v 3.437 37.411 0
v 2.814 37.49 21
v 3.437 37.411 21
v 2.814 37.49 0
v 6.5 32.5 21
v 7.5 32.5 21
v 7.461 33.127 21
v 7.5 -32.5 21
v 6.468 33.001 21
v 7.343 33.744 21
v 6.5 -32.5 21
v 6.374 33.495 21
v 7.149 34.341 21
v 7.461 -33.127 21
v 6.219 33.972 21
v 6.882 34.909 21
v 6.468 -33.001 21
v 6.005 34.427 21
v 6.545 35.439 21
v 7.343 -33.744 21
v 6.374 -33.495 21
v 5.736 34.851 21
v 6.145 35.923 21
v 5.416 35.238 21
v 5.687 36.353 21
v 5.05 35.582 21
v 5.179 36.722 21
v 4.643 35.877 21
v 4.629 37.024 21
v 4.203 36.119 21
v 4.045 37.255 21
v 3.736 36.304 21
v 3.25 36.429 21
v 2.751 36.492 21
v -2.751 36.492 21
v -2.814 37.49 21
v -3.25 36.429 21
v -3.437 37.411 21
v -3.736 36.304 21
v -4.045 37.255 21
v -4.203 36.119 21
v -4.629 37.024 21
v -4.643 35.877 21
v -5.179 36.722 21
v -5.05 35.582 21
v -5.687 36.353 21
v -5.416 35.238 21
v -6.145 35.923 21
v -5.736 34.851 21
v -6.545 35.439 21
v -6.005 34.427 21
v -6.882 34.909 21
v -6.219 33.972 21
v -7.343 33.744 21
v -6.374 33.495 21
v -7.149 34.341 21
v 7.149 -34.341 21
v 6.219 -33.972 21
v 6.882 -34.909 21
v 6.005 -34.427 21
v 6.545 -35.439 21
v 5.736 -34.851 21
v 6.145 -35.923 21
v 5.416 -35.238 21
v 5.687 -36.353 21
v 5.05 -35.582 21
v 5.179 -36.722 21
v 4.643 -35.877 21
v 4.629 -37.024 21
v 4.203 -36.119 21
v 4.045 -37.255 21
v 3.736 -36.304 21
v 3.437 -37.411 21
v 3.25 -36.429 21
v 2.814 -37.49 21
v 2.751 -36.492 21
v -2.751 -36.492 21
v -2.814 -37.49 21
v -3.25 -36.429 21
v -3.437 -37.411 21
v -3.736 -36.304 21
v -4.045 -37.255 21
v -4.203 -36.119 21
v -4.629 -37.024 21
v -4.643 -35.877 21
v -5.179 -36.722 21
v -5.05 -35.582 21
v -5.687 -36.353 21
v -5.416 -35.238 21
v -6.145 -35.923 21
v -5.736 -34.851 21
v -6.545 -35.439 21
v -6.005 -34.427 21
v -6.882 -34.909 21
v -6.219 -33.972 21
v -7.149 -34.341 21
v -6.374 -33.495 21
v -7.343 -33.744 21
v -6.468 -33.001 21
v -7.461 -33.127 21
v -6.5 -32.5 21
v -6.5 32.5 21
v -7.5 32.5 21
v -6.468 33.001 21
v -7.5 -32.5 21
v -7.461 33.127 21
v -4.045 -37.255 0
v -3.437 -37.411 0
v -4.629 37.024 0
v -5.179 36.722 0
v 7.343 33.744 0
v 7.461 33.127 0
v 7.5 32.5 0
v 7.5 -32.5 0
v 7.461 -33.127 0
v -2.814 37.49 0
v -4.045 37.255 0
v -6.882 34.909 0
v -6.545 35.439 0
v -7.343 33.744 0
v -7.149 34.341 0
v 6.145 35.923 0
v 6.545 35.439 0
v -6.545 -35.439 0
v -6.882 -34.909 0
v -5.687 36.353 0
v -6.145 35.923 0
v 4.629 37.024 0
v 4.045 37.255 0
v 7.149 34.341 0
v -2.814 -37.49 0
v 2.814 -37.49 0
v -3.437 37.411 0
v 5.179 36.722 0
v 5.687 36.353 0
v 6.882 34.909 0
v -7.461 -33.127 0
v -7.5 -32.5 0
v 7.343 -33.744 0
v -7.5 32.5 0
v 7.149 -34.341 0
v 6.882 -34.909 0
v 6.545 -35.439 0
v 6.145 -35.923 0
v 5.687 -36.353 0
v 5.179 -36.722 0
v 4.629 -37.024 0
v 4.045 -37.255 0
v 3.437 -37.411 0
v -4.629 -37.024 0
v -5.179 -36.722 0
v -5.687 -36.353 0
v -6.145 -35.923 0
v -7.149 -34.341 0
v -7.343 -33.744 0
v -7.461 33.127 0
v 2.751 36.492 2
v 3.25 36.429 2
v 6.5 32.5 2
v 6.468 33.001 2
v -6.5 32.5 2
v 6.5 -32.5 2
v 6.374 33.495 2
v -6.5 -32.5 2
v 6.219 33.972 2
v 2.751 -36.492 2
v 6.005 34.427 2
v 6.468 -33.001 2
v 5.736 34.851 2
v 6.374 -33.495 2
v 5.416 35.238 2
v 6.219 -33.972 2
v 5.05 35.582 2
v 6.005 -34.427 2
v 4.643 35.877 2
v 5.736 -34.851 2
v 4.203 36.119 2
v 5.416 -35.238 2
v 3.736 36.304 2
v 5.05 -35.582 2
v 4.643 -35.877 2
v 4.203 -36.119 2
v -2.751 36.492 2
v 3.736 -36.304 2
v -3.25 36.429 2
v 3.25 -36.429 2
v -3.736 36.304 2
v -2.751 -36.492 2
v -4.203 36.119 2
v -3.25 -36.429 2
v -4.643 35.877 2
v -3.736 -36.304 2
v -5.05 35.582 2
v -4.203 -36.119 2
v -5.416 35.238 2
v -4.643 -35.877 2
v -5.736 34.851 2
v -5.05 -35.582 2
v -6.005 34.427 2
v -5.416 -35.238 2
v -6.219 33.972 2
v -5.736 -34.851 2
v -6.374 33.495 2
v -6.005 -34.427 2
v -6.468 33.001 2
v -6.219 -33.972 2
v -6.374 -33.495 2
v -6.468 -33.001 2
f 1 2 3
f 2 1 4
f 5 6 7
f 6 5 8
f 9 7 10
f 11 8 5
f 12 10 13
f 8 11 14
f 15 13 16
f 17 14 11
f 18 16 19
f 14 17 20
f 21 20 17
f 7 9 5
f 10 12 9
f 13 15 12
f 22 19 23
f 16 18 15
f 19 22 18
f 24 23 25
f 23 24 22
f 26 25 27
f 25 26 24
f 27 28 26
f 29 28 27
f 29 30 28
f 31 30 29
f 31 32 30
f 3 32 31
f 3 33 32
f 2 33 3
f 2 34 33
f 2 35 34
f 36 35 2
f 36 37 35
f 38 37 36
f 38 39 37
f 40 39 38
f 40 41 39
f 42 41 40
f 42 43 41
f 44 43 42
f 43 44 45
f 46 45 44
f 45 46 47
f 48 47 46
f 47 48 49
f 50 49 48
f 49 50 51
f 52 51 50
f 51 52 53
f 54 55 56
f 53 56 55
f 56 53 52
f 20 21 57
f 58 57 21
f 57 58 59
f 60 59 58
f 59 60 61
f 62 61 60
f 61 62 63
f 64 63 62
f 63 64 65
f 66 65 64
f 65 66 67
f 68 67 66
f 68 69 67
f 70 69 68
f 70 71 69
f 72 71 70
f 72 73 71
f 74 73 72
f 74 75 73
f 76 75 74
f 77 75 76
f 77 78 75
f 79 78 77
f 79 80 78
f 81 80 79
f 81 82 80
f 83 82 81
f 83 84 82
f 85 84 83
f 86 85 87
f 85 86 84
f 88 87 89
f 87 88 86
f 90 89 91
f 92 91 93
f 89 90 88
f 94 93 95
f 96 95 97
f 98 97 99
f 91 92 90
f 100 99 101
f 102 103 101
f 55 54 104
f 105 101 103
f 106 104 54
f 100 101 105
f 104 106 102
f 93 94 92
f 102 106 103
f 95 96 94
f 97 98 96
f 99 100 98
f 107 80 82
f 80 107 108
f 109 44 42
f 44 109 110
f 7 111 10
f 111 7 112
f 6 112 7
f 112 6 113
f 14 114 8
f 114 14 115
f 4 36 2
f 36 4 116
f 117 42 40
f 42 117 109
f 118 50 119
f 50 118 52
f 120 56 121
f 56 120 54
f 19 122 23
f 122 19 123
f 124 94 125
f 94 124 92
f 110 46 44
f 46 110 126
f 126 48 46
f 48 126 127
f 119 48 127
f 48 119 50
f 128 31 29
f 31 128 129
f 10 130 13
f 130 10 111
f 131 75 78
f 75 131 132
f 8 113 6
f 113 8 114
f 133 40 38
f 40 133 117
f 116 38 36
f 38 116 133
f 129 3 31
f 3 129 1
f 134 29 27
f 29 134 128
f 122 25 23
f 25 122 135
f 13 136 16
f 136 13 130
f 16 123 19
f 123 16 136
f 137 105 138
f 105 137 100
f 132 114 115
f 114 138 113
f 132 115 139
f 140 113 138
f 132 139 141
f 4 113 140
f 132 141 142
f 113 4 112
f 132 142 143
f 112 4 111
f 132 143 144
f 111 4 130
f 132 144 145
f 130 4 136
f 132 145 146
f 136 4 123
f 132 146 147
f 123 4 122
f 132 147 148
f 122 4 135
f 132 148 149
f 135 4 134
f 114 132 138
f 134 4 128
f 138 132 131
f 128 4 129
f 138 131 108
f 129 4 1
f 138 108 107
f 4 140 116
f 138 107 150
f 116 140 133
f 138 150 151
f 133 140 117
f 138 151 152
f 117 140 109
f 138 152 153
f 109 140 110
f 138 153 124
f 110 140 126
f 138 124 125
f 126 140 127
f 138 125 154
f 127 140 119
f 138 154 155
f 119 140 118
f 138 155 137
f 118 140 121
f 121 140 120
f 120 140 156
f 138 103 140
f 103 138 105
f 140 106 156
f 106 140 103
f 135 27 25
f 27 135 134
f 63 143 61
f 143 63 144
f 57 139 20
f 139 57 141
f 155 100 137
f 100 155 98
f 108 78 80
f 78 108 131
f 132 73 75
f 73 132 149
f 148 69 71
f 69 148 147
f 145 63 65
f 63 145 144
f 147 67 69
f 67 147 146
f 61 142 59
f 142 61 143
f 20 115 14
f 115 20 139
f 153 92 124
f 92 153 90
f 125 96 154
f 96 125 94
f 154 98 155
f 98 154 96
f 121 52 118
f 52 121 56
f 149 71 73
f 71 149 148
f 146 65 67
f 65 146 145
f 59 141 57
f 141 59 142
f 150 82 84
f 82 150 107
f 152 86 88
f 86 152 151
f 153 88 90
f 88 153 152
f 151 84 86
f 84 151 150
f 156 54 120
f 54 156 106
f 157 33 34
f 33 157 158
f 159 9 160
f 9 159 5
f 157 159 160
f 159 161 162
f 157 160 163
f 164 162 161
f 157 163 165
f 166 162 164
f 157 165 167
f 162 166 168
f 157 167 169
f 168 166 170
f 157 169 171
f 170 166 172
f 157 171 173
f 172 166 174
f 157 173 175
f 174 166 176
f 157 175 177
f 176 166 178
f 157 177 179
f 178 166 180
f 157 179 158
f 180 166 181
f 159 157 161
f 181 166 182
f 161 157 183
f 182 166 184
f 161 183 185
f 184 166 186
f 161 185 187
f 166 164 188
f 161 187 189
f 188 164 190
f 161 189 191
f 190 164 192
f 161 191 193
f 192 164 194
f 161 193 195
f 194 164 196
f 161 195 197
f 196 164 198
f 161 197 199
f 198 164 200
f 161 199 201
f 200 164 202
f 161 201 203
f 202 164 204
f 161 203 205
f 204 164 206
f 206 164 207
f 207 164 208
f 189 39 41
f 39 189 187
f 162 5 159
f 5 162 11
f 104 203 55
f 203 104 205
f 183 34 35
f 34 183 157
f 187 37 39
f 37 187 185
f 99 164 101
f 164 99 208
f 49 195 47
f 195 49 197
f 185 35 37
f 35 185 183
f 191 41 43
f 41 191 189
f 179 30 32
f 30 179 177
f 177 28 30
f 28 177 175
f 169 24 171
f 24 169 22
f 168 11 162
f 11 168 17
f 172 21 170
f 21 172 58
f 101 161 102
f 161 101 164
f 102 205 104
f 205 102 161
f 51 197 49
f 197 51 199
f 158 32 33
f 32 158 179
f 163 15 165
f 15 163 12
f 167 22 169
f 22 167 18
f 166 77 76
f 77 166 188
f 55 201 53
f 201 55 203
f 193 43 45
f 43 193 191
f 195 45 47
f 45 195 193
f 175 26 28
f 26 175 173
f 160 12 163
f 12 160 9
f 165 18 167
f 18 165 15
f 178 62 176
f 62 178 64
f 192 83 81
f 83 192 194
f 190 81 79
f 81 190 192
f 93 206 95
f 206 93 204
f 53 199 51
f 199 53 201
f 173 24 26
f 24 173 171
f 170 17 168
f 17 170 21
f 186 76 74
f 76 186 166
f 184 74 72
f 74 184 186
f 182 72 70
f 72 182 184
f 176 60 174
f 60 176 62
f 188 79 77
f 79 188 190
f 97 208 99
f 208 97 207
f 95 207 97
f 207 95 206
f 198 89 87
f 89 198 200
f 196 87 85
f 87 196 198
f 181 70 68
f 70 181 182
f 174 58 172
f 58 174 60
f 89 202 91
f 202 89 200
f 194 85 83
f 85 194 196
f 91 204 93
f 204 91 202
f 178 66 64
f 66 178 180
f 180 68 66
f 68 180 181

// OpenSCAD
$fn = 50;


difference() {
	union() {
		hull() {
			translate(v = [-2.5000000000, 32.5000000000, 0]) {
				cylinder(h = 21, r = 5);
			}
			translate(v = [2.5000000000, 32.5000000000, 0]) {
				cylinder(h = 21, r = 5);
			}
			translate(v = [-2.5000000000, -32.5000000000, 0]) {
				cylinder(h = 21, r = 5);
			}
			translate(v = [2.5000000000, -32.5000000000, 0]) {
				cylinder(h = 21, r = 5);
			}
		}
	}
	union() {
		translate(v = [0, 0, 2]) {
			hull() {
				translate(v = [-2.5000000000, 32.5000000000, 0]) {
					cylinder(h = 19, r = 4);
				}
				translate(v = [2.5000000000, 32.5000000000, 0]) {
					cylinder(h = 19, r = 4);
				}
				translate(v = [-2.5000000000, -32.5000000000, 0]) {
					cylinder(h = 19, r = 4);
				}
				translate(v = [2.5000000000, -32.5000000000, 0]) {
					cylinder(h = 19, r = 4);
				}
			}
		}
	}
}
